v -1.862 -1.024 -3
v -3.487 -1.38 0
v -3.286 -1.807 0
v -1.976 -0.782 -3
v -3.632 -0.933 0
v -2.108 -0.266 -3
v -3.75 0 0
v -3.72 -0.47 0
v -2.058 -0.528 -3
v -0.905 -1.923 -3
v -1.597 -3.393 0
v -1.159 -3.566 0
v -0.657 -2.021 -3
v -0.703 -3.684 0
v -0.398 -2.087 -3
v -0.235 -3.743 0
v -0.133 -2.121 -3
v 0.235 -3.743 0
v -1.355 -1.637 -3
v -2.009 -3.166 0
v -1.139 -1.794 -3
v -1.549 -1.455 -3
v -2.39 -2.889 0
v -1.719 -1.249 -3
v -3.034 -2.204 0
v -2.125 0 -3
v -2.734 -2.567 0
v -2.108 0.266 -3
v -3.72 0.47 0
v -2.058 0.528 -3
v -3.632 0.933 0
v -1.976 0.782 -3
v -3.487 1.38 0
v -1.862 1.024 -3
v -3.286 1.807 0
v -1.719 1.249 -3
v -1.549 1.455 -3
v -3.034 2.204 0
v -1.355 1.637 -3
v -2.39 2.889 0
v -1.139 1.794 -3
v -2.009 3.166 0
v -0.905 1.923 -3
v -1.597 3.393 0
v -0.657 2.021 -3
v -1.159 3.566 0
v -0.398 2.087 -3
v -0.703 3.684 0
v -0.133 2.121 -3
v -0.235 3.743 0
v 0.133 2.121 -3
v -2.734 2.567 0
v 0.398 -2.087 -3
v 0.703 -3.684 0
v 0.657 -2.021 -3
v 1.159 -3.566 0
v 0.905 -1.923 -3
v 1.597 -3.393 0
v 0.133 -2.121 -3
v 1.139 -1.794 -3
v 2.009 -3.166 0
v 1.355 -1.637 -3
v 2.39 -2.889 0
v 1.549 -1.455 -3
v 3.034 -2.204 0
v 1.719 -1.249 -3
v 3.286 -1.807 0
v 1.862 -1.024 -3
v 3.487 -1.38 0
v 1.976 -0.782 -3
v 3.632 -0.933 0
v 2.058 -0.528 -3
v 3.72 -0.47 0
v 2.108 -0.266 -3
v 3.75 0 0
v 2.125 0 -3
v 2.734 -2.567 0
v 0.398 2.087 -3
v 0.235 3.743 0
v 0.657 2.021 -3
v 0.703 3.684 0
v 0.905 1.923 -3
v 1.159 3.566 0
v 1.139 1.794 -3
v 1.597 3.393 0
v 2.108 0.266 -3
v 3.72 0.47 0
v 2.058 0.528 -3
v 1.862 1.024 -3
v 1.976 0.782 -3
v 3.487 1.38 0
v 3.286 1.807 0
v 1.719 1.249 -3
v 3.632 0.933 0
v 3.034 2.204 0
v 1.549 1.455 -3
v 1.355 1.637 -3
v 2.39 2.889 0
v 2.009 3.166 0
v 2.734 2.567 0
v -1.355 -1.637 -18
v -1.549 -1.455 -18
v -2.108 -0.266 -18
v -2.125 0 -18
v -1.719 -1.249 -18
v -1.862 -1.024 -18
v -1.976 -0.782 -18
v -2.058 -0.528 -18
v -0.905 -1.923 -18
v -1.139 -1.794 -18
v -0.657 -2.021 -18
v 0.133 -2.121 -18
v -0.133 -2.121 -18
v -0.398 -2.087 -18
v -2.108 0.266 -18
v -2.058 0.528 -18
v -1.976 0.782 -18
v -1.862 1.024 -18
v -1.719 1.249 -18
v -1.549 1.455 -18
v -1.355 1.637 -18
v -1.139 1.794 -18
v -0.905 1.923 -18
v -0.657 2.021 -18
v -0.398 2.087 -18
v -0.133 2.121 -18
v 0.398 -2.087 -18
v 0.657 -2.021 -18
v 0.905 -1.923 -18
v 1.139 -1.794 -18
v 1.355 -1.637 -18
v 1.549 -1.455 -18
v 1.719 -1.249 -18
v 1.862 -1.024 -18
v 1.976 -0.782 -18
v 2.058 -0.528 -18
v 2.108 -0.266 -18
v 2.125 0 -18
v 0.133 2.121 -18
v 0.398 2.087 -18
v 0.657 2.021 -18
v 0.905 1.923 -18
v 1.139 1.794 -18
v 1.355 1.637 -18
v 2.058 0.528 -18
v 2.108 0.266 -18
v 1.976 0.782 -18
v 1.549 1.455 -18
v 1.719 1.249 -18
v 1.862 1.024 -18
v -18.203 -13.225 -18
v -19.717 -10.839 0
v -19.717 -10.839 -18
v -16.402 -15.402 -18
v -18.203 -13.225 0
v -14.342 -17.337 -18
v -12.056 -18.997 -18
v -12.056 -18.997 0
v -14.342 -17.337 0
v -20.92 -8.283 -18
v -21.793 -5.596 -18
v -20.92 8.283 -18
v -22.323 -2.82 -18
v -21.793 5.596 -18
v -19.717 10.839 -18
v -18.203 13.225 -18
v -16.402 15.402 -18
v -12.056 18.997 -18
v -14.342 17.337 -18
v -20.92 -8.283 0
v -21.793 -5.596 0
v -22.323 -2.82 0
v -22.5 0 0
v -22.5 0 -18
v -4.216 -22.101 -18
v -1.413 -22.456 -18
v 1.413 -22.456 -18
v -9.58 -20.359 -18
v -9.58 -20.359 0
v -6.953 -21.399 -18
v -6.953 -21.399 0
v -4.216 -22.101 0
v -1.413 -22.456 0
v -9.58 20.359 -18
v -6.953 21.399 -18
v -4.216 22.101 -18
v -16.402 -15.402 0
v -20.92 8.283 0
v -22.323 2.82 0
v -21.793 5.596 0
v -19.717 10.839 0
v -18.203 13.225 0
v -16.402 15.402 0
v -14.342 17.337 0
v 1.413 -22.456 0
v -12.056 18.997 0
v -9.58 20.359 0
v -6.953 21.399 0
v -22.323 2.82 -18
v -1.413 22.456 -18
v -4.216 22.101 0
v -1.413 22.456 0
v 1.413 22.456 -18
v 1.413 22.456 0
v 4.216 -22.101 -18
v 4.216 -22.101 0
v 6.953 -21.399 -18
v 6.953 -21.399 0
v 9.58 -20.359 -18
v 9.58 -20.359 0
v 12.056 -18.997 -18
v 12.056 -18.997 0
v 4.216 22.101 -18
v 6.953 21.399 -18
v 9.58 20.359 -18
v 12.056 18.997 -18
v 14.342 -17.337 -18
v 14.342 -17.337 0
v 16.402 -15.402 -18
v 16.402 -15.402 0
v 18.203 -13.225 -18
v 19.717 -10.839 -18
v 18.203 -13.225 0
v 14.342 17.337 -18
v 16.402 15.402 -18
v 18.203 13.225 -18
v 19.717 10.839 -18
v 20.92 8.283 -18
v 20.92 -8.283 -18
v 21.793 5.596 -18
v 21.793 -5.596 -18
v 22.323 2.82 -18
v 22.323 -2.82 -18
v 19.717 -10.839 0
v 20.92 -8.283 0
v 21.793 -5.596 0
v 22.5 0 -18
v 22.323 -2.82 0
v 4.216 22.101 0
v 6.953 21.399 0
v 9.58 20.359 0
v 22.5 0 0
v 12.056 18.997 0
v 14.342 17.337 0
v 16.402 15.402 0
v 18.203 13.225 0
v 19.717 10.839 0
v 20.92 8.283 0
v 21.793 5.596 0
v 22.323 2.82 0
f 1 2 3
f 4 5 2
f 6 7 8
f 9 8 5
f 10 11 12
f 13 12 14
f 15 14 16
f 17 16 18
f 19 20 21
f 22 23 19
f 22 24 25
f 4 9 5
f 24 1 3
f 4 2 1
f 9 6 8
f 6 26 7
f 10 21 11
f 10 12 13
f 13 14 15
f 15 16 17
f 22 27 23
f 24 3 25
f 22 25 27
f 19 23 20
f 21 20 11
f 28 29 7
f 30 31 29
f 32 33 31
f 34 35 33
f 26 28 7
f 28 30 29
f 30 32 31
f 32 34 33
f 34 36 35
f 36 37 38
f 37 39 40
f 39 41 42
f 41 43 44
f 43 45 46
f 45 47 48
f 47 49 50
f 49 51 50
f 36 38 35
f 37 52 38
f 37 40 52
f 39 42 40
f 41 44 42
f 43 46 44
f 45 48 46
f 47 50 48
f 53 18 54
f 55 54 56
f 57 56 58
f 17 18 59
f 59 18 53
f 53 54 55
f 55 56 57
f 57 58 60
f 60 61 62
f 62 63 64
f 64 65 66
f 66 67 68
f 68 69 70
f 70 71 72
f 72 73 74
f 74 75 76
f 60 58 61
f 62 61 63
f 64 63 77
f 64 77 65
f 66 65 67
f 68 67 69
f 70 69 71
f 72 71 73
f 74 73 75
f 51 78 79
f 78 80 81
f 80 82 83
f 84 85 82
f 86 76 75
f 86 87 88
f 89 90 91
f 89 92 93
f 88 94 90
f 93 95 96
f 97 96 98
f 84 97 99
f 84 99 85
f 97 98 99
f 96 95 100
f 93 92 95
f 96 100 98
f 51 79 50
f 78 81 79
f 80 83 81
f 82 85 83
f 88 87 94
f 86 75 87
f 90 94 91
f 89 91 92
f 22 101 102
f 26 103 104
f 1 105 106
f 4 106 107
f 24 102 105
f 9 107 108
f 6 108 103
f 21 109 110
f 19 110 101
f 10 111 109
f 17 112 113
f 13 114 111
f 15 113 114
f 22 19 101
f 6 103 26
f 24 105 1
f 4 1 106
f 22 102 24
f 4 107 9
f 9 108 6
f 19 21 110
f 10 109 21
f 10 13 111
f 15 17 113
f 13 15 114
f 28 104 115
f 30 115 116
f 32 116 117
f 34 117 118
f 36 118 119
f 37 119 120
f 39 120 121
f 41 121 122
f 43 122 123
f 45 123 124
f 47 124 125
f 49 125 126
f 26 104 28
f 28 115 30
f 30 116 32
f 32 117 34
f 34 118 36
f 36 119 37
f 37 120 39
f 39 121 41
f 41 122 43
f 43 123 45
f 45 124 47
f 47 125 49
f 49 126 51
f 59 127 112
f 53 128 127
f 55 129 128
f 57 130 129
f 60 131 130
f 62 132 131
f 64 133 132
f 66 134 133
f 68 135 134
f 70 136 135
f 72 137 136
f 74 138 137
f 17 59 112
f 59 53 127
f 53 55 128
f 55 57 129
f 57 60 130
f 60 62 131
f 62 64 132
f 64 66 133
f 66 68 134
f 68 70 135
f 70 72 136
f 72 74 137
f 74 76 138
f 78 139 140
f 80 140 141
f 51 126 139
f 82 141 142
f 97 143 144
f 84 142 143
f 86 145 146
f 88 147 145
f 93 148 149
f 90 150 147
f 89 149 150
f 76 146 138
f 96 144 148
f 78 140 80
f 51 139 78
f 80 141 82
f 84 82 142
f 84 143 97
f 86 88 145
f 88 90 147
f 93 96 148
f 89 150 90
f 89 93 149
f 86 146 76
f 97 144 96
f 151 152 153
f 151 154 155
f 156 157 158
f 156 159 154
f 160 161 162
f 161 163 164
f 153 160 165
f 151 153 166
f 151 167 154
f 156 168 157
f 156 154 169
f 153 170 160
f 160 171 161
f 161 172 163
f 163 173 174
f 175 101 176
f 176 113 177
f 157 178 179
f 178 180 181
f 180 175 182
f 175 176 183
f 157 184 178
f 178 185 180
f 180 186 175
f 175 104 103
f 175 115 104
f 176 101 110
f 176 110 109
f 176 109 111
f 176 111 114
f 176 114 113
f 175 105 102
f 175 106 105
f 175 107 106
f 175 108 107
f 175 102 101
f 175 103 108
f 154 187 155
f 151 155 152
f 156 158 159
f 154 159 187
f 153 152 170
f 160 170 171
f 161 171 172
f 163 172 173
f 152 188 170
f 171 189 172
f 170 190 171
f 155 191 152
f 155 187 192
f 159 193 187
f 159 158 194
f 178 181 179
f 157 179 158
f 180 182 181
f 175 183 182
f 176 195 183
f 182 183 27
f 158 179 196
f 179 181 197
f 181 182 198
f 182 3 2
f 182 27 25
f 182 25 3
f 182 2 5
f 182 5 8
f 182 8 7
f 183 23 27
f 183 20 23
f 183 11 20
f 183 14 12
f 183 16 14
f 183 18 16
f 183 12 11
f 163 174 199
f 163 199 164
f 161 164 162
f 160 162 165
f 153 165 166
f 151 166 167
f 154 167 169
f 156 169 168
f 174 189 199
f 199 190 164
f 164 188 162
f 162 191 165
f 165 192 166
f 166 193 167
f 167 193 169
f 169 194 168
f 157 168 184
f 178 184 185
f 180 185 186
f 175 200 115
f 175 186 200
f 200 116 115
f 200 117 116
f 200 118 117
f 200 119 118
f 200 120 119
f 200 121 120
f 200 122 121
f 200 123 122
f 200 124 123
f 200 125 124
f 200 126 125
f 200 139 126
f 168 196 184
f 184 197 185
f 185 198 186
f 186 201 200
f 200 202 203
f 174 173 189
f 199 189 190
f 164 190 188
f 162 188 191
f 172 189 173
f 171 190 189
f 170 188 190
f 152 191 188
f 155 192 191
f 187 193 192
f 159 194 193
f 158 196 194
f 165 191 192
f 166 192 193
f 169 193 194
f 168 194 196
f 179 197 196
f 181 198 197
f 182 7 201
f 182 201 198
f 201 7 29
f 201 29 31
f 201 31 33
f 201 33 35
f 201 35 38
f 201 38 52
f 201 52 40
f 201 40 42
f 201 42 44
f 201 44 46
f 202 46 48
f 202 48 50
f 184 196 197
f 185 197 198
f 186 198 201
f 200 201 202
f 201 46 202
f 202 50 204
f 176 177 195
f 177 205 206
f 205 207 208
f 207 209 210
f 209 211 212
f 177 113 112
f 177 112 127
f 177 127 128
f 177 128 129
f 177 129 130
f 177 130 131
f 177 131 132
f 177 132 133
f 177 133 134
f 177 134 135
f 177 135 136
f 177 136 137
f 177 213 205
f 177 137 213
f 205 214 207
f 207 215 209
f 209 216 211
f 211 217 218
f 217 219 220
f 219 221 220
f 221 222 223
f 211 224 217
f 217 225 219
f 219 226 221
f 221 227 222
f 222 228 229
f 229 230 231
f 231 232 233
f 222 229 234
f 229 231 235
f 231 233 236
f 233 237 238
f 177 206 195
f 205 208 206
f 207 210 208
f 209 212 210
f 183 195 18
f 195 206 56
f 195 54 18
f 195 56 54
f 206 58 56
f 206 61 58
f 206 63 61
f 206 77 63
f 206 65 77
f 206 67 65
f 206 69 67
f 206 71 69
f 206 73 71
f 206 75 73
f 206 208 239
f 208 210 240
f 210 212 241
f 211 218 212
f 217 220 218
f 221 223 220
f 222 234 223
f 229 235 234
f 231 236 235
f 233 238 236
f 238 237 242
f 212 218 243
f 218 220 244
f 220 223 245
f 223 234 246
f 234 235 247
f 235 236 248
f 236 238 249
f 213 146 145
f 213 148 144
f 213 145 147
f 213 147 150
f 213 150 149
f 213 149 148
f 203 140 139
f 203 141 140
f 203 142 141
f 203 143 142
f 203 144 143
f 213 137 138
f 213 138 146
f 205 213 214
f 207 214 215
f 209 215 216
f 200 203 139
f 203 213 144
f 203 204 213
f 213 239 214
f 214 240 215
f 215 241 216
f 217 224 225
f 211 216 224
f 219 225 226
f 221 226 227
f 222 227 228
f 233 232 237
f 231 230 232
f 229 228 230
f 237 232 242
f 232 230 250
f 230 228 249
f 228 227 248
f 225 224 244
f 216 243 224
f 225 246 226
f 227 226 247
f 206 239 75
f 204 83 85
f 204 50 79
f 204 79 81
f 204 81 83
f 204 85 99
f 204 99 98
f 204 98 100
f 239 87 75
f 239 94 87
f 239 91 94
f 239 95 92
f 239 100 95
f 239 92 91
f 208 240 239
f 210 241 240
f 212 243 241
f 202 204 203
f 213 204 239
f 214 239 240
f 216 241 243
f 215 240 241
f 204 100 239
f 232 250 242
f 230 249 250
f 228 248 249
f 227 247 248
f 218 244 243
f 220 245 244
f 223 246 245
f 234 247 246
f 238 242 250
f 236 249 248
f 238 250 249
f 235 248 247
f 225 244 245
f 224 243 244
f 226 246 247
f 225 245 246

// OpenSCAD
$fn = 50;


difference() {
	union() {
		translate(v = [0, 0, -18.0000000000]) {
			cylinder(h = 18, r = 22.5000000000);
		}
	}
	union() {
		translate(v = [0, 0, 0]) {
			rotate(a = [0, 0, 0]) {
				difference() {
					union() {
						translate(v = [0, 0, -21.0000000000]) {
							cylinder(h = 21, r = 2.0000000000);
						}
						translate(v = [0, 0, -3]) {
							cylinder(h = 3, r1 = 2.1250000000, r2 = 3.7500000000);
						}
						translate(v = [0, 0, -21.0000000000]) {
							cylinder(h = 21, r = 2.1250000000);
						}
						translate(v = [0, 0, -21.0000000000]) {
							cylinder(h = 21, r = 2.0000000000);
						}
					}
					union();
				}
			}
		}
	}
}
